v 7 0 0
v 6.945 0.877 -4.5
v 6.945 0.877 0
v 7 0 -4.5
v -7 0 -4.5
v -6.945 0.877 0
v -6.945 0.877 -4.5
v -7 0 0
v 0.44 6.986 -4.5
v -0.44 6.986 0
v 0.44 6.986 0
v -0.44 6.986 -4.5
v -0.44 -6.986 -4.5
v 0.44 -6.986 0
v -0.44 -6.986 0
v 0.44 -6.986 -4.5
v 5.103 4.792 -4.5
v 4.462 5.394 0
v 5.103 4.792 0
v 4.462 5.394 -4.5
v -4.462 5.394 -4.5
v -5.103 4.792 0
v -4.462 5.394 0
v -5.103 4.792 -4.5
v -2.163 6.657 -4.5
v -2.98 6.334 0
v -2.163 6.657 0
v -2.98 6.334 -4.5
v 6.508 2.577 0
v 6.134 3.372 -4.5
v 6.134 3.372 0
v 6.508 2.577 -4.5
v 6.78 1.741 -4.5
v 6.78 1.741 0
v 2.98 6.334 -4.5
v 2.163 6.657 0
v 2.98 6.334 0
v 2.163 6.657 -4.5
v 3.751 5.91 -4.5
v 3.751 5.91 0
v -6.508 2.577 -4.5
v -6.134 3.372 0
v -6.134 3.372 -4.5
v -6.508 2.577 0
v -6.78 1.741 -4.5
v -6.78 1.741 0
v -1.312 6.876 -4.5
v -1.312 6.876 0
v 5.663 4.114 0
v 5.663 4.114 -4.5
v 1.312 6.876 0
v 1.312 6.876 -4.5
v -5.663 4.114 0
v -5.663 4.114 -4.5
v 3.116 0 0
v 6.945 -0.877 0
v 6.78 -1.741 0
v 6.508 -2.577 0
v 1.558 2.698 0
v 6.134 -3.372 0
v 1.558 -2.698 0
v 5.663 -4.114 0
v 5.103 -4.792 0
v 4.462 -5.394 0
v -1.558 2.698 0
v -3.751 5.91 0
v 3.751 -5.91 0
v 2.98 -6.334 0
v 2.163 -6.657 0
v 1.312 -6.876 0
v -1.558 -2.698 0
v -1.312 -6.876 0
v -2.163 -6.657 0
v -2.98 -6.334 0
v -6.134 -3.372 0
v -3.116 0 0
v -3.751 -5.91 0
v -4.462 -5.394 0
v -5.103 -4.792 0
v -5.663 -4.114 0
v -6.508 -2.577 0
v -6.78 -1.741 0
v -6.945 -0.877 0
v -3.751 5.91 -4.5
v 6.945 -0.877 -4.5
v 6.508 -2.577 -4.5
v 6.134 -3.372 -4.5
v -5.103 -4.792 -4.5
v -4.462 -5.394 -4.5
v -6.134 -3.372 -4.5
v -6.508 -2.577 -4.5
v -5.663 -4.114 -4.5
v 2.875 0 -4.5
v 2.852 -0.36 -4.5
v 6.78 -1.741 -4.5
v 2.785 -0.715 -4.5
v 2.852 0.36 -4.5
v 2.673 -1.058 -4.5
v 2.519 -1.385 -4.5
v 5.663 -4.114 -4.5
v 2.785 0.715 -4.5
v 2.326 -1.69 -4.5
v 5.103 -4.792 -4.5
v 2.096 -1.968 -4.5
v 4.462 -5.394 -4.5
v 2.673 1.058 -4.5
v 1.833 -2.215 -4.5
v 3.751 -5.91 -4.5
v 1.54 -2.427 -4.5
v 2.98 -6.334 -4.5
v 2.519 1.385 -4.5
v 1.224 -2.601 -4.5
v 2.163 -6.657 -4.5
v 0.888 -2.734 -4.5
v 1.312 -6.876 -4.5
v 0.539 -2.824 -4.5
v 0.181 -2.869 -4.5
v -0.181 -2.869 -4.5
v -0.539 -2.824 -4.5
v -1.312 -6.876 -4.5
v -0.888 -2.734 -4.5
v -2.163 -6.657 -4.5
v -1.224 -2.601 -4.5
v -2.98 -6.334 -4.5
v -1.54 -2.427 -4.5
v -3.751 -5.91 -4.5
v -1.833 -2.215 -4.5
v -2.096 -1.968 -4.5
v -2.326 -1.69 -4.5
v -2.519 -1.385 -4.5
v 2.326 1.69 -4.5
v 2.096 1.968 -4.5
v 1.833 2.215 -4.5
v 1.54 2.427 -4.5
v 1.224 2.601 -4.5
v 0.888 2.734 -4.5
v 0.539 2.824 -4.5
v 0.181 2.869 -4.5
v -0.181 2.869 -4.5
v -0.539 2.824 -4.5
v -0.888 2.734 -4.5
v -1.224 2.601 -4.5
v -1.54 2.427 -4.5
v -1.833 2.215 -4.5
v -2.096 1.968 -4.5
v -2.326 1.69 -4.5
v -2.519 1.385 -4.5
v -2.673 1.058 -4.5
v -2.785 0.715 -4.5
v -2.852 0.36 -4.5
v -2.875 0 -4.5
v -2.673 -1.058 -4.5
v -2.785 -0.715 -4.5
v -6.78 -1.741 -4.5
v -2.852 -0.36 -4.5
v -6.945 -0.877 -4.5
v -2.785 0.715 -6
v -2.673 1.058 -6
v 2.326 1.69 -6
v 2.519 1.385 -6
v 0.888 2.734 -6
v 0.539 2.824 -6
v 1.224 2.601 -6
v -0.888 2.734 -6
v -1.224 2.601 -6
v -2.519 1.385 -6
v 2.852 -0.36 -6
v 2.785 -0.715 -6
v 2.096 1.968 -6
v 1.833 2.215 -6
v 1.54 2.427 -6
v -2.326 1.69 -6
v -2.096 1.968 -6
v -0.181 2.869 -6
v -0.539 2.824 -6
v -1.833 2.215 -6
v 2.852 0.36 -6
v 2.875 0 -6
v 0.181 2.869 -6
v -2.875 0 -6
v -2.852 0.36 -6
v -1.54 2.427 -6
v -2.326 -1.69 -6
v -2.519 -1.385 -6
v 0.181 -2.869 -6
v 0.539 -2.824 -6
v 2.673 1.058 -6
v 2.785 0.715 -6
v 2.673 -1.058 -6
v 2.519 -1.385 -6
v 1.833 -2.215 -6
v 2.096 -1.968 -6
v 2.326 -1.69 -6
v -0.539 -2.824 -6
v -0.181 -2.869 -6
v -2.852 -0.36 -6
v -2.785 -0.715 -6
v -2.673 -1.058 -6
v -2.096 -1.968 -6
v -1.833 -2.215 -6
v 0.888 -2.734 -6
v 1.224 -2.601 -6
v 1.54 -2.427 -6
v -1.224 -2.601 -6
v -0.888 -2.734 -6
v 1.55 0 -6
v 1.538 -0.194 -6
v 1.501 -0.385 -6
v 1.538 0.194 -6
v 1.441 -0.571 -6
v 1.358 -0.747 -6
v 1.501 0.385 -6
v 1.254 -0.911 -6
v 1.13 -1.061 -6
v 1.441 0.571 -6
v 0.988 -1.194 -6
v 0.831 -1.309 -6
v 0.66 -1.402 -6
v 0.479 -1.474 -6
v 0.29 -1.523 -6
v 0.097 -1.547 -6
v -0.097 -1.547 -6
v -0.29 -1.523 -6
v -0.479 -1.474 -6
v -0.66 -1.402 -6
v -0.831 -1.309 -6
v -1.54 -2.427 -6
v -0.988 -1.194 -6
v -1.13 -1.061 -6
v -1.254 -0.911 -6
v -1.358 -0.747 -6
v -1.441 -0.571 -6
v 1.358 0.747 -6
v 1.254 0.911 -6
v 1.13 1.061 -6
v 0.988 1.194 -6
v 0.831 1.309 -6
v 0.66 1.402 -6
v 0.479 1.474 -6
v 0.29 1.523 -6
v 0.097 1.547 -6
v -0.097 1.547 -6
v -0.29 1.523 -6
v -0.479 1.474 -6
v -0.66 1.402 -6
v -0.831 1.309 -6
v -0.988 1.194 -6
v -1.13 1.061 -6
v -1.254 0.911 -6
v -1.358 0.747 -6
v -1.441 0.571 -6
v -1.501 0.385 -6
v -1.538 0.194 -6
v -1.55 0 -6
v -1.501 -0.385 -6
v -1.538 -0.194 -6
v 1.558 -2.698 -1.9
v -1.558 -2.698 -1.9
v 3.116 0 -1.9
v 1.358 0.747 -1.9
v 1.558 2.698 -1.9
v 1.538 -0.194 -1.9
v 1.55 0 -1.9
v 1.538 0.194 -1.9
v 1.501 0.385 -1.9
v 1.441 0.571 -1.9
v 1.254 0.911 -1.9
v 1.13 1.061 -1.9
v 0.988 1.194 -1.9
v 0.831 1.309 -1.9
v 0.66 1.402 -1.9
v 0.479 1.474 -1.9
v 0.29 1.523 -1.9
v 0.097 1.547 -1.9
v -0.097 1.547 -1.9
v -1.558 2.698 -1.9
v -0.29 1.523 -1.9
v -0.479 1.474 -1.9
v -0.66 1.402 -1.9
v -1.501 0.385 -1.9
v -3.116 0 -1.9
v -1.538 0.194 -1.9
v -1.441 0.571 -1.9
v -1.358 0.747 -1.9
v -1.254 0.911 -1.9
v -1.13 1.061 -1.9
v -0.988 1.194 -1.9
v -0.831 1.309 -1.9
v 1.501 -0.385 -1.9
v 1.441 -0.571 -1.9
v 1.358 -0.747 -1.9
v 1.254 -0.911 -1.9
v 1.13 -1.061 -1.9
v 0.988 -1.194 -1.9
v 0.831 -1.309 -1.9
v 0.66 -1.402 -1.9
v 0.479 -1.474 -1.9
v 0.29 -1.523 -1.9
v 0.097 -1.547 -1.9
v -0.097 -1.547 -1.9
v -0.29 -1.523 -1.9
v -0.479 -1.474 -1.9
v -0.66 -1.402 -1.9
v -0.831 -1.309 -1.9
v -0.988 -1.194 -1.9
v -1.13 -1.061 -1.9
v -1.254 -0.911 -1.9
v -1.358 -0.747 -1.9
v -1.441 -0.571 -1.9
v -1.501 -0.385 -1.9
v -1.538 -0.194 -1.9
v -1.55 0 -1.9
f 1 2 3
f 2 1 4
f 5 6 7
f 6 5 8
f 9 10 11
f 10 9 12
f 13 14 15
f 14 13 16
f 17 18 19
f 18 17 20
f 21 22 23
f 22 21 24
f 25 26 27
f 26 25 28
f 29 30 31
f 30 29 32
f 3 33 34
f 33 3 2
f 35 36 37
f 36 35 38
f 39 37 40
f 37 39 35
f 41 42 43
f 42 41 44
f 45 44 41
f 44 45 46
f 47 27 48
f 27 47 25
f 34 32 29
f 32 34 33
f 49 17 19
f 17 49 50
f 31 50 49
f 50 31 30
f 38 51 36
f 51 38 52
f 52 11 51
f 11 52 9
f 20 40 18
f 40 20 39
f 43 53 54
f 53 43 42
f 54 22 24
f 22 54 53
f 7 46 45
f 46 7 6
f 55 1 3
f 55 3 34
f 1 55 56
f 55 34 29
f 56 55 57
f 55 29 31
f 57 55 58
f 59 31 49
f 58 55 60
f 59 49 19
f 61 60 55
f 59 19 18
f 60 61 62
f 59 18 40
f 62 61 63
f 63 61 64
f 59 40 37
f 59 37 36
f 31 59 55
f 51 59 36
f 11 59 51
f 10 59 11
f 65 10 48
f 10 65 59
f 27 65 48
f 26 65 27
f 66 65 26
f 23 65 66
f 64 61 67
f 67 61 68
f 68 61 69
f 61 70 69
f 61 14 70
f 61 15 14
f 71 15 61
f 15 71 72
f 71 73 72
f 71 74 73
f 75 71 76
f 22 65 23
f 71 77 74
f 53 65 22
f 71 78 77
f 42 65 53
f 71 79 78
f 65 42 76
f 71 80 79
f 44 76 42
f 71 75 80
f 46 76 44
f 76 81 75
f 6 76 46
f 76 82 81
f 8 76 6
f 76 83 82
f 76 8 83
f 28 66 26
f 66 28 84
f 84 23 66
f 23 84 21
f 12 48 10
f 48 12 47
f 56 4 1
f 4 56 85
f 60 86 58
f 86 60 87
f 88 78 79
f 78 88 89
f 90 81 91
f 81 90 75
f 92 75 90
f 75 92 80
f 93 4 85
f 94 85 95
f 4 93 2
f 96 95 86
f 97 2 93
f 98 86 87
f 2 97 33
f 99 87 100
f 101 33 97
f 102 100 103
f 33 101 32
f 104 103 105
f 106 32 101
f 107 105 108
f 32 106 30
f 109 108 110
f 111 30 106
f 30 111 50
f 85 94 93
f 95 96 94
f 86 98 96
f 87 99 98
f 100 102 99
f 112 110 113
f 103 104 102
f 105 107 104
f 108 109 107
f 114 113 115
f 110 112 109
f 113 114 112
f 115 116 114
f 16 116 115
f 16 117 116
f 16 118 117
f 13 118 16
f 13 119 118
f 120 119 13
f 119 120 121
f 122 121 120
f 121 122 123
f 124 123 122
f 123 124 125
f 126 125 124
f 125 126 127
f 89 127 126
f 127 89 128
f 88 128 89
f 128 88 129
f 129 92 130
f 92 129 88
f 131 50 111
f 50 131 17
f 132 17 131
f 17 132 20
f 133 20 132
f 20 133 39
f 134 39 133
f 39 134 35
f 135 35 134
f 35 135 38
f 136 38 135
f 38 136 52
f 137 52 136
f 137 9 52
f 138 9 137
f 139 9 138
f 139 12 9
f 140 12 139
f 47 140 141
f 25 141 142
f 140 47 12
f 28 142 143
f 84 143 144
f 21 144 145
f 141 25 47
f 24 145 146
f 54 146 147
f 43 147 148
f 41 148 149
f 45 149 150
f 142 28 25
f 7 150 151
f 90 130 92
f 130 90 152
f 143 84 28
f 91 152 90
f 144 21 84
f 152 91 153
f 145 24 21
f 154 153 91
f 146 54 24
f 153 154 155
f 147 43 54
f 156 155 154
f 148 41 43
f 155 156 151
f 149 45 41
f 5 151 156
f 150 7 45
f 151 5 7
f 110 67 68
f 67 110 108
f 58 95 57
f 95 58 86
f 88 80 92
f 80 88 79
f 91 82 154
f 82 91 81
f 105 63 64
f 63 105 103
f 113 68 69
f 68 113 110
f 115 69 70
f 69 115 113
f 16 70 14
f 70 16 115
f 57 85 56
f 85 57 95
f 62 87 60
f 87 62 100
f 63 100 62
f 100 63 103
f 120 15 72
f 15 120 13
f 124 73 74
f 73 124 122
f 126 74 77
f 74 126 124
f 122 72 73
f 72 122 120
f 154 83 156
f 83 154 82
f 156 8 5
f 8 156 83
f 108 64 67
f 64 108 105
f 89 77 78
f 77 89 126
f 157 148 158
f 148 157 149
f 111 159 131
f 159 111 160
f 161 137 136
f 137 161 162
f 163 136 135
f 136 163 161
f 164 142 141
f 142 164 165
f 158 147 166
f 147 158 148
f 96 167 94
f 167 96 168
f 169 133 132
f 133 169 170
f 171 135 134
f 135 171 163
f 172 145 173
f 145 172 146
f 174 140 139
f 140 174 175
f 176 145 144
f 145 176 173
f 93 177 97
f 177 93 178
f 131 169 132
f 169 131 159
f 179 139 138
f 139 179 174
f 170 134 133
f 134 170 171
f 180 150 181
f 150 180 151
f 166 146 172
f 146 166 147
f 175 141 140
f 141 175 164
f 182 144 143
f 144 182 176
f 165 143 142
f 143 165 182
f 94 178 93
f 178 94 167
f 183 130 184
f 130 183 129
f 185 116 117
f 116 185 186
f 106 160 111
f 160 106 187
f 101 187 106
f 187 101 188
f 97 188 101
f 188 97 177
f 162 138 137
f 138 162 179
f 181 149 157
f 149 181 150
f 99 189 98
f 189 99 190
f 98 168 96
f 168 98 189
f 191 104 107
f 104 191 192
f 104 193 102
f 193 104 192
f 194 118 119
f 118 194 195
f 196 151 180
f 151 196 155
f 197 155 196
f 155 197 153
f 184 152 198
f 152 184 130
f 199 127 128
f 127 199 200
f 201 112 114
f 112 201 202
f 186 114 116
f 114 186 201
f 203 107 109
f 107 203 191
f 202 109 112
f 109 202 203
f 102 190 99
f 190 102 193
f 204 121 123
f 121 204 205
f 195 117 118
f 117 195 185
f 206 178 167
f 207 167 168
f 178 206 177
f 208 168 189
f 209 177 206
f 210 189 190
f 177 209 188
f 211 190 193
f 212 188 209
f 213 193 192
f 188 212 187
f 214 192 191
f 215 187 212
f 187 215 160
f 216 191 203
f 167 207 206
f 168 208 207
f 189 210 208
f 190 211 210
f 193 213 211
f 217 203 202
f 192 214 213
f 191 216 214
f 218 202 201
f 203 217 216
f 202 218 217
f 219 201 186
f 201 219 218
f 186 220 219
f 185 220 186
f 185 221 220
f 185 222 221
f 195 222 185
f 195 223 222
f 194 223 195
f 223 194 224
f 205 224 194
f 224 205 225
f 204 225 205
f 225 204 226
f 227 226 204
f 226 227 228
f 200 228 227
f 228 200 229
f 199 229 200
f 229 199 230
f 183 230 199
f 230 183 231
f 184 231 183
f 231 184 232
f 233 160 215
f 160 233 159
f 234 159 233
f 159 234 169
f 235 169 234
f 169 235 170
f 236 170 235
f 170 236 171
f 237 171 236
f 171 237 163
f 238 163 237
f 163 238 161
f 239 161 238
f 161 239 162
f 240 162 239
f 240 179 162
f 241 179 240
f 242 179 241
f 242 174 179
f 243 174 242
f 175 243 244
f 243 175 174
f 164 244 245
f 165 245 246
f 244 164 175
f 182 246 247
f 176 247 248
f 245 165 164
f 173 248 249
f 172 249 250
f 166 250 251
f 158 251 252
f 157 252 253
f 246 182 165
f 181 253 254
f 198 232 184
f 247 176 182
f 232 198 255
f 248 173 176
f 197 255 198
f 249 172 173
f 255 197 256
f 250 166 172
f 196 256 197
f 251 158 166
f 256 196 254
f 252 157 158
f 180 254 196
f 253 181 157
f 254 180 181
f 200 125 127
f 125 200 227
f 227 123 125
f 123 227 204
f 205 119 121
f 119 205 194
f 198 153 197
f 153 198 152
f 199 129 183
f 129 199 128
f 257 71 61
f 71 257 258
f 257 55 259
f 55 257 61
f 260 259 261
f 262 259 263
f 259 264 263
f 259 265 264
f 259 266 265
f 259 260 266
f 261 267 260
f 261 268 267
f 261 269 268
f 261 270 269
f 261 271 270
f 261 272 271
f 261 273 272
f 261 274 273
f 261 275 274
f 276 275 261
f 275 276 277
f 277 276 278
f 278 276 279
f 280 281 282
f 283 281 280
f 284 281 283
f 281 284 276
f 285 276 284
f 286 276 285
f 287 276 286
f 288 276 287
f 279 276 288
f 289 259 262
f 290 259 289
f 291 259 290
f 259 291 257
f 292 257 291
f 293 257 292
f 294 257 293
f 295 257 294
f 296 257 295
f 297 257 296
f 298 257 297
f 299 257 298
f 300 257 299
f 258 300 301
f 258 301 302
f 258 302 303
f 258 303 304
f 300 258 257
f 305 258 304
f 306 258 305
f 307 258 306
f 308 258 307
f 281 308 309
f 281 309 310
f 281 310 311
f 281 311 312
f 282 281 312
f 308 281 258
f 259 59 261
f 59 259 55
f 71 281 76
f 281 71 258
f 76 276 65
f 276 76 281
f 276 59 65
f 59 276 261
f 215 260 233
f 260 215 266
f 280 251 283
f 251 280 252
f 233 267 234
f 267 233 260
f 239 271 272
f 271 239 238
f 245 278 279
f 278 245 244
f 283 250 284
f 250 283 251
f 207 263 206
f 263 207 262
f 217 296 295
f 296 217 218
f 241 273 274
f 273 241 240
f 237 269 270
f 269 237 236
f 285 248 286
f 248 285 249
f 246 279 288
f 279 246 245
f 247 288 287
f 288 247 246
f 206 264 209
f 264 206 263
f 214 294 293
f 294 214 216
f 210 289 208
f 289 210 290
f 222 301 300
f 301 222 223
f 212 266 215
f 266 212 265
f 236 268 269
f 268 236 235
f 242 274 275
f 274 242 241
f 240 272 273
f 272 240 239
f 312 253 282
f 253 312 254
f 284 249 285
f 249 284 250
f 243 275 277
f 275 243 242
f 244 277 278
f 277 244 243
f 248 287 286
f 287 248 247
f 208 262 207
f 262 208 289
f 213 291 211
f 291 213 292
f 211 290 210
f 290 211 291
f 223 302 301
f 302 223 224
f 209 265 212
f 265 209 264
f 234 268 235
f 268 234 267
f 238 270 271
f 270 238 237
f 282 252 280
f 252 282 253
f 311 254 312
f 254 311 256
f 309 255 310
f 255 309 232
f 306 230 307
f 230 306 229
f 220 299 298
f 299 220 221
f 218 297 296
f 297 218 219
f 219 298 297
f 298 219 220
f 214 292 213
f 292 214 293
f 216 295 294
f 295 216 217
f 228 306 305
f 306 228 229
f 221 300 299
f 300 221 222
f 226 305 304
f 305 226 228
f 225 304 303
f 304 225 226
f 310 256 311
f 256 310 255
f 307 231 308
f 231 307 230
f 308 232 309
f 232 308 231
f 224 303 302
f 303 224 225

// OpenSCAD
$fn = 50;


difference() {
	union() {
		translate(v = [0, 0, -4.5000000000]) {
			cylinder(h = 4.5000000000, r = 7.0000000000);
		}
		translate(v = [0, 0, -6.0000000000]) {
			cylinder(h = 6, r = 2.8750000000);
		}
	}
	union() {
		translate(v = [0, 0, 0]) {
			rotate(a = [0, 0, 0]) {
				difference() {
					union() {
						translate(v = [0, 0, -1.9000000000]) {
							linear_extrude(height = 1.9000000000) {
								polygon(points = [[3.1158000000, 0.0000000000], [1.5579000000, 2.6983619531], [-1.5579000000, 2.6983619531], [-3.1158000000, 0.0000000000], [-1.5579000000, -2.6983619531], [1.5579000000, -2.6983619531]]);
							}
						}
					}
					union();
				}
			}
		}
		#translate(v = [0, 0, -100.0000000000]) {
			cylinder(h = 200, r = 1.5500000000);
		}
	}
}
